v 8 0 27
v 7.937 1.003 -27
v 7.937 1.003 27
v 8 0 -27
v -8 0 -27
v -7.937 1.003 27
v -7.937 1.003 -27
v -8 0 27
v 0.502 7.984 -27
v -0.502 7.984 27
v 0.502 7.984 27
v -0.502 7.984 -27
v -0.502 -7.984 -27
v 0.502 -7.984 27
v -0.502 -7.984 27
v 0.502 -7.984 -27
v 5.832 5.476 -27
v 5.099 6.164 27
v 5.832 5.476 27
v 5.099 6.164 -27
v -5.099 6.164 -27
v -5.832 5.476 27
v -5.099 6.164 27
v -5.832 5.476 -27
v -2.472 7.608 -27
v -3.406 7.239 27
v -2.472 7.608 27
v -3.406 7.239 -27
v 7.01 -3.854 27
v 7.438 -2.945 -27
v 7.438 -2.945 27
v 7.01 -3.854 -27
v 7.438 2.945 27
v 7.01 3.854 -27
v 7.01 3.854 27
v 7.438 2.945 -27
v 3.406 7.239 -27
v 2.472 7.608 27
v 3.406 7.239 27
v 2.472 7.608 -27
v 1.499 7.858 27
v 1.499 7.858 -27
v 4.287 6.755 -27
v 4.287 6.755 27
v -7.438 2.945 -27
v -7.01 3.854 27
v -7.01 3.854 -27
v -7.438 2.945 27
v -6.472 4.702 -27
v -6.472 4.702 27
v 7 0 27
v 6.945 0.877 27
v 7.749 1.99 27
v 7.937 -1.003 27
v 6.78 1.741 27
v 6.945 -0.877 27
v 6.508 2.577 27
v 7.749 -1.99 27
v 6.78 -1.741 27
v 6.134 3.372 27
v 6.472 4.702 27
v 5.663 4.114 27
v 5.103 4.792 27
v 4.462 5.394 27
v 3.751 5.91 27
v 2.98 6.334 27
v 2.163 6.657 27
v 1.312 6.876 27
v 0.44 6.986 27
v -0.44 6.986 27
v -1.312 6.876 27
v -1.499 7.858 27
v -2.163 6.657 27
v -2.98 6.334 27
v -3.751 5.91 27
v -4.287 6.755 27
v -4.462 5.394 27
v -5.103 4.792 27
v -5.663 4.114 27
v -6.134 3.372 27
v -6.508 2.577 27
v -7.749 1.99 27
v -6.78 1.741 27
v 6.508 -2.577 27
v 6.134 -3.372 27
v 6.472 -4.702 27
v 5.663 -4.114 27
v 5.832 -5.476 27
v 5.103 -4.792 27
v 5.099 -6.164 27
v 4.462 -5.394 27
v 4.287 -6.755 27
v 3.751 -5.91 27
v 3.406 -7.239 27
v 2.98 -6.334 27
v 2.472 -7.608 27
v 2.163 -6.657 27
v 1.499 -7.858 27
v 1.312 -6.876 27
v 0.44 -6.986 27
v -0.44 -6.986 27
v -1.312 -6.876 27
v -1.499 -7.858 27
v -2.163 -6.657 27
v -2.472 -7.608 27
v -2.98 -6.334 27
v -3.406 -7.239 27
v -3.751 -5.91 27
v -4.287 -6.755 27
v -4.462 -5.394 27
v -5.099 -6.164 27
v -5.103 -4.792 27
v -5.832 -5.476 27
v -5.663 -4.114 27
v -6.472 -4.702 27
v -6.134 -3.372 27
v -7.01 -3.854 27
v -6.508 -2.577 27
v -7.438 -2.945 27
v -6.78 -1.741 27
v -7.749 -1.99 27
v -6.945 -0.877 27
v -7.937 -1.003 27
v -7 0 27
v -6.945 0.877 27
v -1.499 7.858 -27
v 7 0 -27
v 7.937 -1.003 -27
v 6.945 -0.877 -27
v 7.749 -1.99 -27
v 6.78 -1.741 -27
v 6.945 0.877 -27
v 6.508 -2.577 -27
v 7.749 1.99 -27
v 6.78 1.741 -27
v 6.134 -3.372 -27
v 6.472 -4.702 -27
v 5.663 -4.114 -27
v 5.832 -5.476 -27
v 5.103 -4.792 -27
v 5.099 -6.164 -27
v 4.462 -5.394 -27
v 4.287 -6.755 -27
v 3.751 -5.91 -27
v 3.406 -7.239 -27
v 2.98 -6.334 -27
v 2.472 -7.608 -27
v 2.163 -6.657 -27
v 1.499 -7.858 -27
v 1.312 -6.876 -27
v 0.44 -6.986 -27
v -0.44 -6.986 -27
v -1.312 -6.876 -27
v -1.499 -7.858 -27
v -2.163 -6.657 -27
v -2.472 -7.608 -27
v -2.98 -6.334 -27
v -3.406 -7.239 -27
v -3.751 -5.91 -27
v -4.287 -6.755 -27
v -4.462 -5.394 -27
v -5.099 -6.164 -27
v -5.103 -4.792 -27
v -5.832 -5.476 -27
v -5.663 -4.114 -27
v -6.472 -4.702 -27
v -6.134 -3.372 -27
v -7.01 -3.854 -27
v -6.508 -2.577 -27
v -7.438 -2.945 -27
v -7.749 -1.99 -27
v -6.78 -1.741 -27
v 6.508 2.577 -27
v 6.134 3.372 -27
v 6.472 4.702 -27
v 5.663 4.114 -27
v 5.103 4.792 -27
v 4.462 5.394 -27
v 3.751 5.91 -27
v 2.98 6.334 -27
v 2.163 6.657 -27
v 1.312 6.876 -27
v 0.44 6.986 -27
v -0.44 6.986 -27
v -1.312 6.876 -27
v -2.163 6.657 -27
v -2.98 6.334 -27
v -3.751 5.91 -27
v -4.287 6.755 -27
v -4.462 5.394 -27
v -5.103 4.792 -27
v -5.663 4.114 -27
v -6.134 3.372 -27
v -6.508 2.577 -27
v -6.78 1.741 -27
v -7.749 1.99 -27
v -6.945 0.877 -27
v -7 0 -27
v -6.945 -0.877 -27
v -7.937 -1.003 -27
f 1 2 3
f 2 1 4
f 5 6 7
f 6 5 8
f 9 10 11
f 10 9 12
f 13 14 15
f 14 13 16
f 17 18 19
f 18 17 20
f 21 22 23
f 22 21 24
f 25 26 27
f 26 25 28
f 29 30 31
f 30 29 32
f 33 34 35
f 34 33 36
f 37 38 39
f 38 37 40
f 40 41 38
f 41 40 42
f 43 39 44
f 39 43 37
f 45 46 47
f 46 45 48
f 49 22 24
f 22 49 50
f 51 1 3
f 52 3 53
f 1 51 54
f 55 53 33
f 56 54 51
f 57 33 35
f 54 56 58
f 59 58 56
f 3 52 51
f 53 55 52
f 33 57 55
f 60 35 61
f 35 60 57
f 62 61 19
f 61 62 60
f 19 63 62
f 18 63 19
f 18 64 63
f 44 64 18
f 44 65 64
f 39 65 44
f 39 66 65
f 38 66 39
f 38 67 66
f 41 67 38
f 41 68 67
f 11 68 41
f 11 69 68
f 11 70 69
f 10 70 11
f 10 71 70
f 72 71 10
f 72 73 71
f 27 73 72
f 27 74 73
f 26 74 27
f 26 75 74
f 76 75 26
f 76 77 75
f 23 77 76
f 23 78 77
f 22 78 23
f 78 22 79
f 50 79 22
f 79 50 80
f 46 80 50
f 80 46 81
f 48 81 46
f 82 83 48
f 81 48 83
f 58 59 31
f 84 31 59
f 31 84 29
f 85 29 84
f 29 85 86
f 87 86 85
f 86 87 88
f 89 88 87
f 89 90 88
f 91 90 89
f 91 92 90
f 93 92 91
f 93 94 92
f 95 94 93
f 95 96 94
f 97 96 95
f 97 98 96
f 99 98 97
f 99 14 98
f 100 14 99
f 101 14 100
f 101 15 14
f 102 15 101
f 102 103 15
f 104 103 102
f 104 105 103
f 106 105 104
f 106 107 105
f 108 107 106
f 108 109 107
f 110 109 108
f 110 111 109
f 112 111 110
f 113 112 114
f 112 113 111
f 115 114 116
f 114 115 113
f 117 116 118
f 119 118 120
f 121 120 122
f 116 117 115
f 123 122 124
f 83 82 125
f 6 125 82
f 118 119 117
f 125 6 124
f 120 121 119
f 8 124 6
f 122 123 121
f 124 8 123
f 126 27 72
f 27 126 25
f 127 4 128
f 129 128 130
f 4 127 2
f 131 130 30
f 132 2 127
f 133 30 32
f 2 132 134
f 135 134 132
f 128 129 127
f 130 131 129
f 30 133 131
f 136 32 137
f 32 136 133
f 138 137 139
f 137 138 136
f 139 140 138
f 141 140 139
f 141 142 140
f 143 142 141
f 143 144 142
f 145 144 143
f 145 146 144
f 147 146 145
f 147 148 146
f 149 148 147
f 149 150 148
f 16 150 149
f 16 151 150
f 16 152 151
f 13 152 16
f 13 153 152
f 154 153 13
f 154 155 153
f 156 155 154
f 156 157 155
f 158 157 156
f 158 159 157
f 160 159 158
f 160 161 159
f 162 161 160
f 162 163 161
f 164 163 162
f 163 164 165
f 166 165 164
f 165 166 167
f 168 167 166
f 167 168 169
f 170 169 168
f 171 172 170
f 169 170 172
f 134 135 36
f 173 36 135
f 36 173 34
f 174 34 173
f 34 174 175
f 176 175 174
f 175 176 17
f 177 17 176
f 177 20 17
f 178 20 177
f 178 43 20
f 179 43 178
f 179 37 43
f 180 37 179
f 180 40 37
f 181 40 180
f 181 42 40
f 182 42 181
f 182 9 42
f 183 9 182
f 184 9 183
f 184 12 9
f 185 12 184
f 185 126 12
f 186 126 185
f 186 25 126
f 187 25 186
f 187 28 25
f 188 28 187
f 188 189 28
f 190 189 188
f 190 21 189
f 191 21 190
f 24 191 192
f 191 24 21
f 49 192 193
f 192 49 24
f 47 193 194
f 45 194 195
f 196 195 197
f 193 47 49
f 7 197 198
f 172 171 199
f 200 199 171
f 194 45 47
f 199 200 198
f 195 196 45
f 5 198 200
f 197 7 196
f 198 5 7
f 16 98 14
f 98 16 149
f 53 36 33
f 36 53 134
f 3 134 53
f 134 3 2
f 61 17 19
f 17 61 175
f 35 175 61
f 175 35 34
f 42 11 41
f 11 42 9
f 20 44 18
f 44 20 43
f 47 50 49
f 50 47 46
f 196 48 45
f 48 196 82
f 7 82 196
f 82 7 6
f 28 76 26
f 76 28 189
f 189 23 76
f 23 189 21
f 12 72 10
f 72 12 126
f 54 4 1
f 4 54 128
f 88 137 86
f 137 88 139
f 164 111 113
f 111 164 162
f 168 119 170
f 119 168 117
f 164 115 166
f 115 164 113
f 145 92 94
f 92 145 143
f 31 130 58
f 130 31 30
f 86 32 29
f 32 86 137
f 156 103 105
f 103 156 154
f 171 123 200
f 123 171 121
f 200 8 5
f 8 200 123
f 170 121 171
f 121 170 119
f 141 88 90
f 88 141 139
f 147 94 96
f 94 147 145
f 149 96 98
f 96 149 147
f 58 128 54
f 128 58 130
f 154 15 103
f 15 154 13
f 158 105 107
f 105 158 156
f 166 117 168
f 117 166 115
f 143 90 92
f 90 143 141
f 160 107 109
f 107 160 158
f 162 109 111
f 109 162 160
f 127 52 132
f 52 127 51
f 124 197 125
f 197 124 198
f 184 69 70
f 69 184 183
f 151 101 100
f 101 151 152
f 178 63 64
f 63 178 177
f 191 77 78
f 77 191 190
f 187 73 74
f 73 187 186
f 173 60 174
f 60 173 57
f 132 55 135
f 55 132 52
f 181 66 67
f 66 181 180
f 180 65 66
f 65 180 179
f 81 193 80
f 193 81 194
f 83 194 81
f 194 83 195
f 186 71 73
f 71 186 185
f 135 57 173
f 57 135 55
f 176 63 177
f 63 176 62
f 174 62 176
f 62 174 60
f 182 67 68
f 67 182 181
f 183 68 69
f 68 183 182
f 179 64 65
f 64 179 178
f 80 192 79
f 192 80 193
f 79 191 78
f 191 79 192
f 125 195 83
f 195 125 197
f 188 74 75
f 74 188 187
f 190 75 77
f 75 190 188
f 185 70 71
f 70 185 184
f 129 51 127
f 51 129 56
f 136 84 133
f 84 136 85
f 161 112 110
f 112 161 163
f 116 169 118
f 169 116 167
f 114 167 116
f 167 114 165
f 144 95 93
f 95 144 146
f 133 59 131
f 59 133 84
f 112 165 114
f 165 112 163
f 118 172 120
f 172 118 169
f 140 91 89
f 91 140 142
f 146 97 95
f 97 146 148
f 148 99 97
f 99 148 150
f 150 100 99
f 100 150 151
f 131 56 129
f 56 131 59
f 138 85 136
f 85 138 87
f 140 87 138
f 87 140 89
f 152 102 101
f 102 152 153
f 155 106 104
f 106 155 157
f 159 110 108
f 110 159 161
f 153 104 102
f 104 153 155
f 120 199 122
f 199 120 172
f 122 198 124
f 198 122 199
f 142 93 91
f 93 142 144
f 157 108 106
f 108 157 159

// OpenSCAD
$fn = 50;


difference() {
	union() {
		translate(v = [0, 0, -27.0000000000]) {
			cylinder(h = 54, r = 8.0000000000);
		}
	}
	union() {
		translate(v = [0, 0, -100.0000000000]) {
			cylinder(h = 200, r = 7);
		}
	}
}
